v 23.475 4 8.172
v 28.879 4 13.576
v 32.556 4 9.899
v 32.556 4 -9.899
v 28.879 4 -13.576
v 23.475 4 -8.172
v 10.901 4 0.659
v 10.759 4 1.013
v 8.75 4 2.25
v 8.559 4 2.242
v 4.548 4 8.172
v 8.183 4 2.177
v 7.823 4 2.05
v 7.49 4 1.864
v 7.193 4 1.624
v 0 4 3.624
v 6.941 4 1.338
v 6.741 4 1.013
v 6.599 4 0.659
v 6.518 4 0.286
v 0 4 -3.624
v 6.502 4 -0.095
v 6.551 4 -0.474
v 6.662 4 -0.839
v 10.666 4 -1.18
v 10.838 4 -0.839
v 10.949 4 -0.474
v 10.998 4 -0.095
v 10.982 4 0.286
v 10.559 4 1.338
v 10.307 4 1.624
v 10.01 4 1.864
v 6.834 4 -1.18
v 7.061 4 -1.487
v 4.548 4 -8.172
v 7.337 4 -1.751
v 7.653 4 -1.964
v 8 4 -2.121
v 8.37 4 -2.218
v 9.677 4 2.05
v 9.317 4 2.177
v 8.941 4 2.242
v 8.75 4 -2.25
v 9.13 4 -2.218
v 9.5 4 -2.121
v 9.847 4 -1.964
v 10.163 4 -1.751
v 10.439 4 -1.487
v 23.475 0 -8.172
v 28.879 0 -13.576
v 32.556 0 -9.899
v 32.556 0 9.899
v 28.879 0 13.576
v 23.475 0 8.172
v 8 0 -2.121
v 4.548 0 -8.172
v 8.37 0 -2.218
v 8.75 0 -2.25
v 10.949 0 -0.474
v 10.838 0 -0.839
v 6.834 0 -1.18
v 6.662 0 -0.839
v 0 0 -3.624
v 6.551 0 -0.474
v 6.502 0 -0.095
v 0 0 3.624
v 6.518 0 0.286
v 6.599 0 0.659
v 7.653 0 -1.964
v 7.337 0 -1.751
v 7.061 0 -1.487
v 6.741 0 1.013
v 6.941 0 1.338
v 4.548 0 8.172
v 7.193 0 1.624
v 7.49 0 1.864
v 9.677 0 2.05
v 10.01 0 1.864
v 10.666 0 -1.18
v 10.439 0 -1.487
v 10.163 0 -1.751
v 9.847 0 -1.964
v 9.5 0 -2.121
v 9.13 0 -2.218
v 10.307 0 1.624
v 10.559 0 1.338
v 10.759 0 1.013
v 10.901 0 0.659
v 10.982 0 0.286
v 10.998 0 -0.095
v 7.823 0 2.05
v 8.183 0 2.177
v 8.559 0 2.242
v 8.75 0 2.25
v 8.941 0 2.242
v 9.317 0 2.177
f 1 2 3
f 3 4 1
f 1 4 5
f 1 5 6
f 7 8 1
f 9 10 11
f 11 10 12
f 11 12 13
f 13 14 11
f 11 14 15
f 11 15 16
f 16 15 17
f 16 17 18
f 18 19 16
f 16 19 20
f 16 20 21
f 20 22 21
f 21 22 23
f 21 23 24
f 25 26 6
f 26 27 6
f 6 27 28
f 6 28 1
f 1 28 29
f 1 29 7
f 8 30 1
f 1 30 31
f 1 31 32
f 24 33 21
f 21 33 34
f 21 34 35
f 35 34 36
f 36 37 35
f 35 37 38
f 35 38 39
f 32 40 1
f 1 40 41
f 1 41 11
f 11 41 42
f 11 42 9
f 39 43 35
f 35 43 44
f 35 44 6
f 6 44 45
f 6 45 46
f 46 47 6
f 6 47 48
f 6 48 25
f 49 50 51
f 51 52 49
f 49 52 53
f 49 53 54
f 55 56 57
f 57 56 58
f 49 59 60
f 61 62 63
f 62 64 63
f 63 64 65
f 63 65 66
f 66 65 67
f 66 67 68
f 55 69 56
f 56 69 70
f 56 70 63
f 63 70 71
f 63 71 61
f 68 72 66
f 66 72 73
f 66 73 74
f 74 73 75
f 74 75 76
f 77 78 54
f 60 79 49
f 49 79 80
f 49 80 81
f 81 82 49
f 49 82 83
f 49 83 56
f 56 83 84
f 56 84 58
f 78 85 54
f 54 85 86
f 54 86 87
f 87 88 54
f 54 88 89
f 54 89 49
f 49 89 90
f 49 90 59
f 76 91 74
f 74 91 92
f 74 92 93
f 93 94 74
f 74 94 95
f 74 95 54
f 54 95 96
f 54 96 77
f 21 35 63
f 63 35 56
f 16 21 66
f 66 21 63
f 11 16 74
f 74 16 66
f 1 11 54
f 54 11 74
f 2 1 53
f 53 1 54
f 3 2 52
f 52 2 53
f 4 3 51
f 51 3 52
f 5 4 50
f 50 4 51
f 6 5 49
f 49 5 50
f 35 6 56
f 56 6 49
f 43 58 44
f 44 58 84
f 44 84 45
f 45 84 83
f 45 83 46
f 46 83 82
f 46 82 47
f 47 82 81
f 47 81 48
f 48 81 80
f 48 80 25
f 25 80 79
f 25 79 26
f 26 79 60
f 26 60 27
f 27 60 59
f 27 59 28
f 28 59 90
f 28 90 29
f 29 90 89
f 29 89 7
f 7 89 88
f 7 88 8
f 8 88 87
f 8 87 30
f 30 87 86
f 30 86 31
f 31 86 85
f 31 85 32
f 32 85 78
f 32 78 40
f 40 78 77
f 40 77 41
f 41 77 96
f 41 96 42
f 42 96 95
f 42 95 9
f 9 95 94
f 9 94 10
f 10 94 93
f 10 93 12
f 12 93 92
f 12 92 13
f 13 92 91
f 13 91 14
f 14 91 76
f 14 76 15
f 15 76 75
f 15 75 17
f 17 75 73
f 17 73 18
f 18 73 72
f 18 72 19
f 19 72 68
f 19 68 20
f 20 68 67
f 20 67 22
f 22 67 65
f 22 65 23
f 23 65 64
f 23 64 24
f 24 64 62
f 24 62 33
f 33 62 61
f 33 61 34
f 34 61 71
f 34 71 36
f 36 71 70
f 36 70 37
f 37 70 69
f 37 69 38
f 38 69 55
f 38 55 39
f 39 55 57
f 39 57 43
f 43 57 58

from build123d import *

# Parameters (mm, degrees)
SKETCH1_R           = 2.25
BOSS_EXTRUDE1_DEPTH = 4


with BuildPart() as part:
    # Sketch1 → Boss-Extrude1 (new body)
    with BuildSketch(Plane(origin=(0, 0, 0), x_dir=(1, 0, 0), z_dir=(0, 1, 0))):
        Polygon((0, 3.624368671), (0, -3.624368671), (4.547968979, -8.17233765), (23.47528137, -8.17233765), (23.48528137, -8.18233765), (24.05294372, -8.75), (28.879393916, -13.576450196), (32.556349179, -9.899494934), (32.556349179, 9.899494934), (28.879393916, 13.576450196), (24.05294372, 8.75), (23.48528137, 8.18233765), (23.47528137, 8.17233765), (4.547968979, 8.17233765), align=None)
        with Locations(Location((8.75, 0, 0), (0, 0, 270))):
            Circle(SKETCH1_R, mode=Mode.SUBTRACT)
    extrude(amount=BOSS_EXTRUDE1_DEPTH)


solid = part.part
